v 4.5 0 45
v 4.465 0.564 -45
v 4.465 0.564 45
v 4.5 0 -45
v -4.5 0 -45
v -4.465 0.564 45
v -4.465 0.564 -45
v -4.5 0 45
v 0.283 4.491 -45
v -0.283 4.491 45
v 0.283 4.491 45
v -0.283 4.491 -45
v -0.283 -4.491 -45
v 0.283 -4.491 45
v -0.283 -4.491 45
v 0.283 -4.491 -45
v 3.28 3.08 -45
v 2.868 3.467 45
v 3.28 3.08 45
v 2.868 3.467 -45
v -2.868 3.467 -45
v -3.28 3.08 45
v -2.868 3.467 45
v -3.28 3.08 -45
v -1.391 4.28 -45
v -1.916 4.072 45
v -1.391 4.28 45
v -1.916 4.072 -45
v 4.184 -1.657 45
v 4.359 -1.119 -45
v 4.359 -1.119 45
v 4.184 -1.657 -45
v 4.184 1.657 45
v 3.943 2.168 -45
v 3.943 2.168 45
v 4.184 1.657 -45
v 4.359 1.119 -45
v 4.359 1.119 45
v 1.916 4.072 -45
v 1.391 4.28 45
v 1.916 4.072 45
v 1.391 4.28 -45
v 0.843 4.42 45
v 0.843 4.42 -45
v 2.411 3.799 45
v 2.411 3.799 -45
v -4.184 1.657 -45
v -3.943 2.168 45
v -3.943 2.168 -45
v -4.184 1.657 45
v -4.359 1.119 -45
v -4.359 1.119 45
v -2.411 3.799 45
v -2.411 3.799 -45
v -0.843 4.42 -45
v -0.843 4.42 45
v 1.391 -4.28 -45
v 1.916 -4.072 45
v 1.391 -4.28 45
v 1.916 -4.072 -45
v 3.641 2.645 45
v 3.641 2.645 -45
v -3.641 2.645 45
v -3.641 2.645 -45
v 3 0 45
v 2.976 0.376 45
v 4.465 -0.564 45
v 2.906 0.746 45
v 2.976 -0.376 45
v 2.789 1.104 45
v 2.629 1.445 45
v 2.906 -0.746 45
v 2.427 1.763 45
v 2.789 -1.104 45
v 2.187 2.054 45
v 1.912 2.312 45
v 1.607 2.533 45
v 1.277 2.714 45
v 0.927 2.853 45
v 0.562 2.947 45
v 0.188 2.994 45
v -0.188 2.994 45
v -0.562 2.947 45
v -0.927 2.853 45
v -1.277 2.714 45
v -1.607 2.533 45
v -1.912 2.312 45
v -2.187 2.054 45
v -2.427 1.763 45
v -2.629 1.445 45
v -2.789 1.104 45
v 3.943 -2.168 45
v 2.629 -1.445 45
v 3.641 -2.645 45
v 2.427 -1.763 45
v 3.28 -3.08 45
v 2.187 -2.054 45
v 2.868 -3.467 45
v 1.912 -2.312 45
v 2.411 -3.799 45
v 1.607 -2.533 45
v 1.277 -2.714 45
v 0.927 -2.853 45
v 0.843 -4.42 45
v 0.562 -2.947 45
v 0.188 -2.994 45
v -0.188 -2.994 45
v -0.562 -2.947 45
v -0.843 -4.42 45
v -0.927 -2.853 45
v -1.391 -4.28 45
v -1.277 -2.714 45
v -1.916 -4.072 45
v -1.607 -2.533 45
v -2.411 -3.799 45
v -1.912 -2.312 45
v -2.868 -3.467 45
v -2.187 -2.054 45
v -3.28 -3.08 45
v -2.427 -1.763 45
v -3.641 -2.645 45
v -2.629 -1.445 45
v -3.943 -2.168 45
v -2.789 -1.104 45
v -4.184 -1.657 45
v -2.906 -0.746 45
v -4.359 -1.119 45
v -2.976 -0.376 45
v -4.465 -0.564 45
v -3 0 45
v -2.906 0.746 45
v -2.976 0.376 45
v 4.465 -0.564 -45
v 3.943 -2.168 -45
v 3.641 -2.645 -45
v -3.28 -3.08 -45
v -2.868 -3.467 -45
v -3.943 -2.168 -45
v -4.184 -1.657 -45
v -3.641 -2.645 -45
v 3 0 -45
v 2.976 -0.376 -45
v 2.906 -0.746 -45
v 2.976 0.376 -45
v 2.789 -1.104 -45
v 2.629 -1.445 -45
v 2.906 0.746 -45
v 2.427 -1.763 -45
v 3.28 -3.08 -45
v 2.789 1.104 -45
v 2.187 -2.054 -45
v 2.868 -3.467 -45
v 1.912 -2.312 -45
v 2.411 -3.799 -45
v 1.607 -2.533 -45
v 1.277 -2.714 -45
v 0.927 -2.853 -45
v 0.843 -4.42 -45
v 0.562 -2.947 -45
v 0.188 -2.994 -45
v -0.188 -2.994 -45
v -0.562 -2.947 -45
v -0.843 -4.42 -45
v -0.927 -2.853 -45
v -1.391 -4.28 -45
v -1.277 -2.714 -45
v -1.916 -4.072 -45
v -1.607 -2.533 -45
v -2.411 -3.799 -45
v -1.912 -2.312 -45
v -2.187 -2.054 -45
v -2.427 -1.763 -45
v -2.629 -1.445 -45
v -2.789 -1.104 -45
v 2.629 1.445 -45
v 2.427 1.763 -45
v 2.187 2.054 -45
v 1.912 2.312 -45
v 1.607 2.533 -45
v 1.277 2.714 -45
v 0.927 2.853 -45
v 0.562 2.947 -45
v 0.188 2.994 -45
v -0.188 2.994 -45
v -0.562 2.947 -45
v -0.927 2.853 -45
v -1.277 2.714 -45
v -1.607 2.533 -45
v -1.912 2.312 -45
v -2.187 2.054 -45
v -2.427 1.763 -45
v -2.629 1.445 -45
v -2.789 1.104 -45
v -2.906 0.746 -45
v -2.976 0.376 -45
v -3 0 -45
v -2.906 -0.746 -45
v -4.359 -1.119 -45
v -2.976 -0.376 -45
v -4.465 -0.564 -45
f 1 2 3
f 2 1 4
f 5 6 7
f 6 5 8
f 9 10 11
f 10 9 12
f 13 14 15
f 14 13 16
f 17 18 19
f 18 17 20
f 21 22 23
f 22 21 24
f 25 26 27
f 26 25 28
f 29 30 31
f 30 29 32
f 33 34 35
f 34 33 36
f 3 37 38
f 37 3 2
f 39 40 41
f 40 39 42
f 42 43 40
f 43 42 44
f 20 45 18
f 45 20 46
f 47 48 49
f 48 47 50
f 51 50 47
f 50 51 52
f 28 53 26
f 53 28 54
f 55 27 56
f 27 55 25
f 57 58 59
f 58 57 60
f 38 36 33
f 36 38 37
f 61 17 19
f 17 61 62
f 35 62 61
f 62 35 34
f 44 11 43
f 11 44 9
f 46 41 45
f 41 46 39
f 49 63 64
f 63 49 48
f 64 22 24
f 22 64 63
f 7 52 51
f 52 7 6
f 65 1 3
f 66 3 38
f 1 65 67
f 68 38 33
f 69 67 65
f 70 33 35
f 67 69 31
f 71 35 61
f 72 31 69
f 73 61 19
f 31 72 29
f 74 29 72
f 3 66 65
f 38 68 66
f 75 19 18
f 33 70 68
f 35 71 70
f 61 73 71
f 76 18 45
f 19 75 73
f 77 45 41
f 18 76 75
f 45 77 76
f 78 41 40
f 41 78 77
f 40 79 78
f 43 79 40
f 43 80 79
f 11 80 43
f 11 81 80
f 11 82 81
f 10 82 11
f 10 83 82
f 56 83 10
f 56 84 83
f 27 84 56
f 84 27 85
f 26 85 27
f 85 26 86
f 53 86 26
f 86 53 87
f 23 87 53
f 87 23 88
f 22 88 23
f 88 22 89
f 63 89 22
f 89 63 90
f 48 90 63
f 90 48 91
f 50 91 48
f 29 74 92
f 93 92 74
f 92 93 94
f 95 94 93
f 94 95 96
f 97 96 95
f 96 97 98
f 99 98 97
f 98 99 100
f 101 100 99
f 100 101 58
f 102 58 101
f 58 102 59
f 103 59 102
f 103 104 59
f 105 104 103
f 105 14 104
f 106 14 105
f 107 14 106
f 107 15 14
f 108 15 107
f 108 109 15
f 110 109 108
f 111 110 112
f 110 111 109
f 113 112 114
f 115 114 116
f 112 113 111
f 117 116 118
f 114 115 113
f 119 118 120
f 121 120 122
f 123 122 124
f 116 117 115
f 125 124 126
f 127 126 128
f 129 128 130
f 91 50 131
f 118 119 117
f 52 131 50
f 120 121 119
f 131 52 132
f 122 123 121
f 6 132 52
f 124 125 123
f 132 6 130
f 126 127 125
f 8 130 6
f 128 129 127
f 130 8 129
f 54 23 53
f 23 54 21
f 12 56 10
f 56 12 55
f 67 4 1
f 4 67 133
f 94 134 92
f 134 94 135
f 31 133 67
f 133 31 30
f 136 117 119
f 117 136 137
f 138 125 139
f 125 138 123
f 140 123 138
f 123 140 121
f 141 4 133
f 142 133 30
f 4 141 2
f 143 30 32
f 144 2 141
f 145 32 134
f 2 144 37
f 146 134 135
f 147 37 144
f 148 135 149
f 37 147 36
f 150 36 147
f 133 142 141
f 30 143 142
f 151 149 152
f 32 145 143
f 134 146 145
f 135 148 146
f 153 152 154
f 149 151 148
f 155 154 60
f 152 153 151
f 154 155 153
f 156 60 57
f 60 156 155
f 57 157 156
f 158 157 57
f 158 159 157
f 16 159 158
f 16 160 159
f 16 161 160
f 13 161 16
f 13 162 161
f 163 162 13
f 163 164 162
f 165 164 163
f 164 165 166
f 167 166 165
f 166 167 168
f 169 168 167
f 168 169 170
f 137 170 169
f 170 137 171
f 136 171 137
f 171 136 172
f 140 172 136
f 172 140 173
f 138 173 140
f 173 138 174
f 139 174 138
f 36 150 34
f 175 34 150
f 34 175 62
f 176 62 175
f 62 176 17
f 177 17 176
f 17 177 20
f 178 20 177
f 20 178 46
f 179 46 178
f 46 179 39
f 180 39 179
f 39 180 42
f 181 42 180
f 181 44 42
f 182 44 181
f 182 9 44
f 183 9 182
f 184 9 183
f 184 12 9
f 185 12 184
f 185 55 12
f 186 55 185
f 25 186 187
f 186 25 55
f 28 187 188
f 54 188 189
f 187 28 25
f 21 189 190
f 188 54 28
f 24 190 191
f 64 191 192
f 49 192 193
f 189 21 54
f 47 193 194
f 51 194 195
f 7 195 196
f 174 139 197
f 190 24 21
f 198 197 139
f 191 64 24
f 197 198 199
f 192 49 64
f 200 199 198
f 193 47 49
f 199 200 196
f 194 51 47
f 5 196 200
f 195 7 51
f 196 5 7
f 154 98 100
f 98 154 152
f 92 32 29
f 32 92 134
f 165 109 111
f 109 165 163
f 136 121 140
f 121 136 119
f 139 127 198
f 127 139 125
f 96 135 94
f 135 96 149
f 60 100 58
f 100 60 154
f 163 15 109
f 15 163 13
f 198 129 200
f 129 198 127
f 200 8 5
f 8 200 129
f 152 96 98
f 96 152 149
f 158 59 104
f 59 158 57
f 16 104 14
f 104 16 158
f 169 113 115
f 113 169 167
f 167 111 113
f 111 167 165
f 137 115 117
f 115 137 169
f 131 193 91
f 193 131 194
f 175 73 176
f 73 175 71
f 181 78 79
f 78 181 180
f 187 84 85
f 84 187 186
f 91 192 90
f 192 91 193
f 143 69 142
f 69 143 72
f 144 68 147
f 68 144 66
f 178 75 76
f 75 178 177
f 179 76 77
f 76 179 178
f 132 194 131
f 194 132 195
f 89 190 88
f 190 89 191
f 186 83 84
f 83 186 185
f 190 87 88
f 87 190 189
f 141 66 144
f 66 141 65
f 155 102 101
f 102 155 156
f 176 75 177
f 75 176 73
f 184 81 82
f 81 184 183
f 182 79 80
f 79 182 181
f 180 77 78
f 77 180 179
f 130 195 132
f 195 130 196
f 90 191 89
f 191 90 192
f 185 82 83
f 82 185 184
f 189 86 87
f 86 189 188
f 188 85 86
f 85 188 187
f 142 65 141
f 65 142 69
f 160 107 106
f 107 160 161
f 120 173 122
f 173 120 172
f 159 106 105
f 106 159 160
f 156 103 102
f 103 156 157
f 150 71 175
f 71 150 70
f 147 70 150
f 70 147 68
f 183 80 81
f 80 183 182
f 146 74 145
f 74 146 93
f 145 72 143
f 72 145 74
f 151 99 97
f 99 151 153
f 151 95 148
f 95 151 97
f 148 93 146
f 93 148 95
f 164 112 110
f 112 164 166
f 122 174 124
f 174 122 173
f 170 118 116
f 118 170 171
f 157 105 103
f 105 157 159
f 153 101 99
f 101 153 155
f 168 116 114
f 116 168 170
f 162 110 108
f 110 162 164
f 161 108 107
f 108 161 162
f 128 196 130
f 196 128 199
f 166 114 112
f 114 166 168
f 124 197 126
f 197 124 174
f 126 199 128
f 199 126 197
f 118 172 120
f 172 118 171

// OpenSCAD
$fn = 50;


difference() {
	union() {
		translate(v = [0, 0, -45.0000000000]) {
			cylinder(h = 90, r = 4.5000000000);
		}
	}
	union() {
		translate(v = [0, 0, -100.0000000000]) {
			cylinder(h = 200, r = 3.0000000000);
		}
	}
}
